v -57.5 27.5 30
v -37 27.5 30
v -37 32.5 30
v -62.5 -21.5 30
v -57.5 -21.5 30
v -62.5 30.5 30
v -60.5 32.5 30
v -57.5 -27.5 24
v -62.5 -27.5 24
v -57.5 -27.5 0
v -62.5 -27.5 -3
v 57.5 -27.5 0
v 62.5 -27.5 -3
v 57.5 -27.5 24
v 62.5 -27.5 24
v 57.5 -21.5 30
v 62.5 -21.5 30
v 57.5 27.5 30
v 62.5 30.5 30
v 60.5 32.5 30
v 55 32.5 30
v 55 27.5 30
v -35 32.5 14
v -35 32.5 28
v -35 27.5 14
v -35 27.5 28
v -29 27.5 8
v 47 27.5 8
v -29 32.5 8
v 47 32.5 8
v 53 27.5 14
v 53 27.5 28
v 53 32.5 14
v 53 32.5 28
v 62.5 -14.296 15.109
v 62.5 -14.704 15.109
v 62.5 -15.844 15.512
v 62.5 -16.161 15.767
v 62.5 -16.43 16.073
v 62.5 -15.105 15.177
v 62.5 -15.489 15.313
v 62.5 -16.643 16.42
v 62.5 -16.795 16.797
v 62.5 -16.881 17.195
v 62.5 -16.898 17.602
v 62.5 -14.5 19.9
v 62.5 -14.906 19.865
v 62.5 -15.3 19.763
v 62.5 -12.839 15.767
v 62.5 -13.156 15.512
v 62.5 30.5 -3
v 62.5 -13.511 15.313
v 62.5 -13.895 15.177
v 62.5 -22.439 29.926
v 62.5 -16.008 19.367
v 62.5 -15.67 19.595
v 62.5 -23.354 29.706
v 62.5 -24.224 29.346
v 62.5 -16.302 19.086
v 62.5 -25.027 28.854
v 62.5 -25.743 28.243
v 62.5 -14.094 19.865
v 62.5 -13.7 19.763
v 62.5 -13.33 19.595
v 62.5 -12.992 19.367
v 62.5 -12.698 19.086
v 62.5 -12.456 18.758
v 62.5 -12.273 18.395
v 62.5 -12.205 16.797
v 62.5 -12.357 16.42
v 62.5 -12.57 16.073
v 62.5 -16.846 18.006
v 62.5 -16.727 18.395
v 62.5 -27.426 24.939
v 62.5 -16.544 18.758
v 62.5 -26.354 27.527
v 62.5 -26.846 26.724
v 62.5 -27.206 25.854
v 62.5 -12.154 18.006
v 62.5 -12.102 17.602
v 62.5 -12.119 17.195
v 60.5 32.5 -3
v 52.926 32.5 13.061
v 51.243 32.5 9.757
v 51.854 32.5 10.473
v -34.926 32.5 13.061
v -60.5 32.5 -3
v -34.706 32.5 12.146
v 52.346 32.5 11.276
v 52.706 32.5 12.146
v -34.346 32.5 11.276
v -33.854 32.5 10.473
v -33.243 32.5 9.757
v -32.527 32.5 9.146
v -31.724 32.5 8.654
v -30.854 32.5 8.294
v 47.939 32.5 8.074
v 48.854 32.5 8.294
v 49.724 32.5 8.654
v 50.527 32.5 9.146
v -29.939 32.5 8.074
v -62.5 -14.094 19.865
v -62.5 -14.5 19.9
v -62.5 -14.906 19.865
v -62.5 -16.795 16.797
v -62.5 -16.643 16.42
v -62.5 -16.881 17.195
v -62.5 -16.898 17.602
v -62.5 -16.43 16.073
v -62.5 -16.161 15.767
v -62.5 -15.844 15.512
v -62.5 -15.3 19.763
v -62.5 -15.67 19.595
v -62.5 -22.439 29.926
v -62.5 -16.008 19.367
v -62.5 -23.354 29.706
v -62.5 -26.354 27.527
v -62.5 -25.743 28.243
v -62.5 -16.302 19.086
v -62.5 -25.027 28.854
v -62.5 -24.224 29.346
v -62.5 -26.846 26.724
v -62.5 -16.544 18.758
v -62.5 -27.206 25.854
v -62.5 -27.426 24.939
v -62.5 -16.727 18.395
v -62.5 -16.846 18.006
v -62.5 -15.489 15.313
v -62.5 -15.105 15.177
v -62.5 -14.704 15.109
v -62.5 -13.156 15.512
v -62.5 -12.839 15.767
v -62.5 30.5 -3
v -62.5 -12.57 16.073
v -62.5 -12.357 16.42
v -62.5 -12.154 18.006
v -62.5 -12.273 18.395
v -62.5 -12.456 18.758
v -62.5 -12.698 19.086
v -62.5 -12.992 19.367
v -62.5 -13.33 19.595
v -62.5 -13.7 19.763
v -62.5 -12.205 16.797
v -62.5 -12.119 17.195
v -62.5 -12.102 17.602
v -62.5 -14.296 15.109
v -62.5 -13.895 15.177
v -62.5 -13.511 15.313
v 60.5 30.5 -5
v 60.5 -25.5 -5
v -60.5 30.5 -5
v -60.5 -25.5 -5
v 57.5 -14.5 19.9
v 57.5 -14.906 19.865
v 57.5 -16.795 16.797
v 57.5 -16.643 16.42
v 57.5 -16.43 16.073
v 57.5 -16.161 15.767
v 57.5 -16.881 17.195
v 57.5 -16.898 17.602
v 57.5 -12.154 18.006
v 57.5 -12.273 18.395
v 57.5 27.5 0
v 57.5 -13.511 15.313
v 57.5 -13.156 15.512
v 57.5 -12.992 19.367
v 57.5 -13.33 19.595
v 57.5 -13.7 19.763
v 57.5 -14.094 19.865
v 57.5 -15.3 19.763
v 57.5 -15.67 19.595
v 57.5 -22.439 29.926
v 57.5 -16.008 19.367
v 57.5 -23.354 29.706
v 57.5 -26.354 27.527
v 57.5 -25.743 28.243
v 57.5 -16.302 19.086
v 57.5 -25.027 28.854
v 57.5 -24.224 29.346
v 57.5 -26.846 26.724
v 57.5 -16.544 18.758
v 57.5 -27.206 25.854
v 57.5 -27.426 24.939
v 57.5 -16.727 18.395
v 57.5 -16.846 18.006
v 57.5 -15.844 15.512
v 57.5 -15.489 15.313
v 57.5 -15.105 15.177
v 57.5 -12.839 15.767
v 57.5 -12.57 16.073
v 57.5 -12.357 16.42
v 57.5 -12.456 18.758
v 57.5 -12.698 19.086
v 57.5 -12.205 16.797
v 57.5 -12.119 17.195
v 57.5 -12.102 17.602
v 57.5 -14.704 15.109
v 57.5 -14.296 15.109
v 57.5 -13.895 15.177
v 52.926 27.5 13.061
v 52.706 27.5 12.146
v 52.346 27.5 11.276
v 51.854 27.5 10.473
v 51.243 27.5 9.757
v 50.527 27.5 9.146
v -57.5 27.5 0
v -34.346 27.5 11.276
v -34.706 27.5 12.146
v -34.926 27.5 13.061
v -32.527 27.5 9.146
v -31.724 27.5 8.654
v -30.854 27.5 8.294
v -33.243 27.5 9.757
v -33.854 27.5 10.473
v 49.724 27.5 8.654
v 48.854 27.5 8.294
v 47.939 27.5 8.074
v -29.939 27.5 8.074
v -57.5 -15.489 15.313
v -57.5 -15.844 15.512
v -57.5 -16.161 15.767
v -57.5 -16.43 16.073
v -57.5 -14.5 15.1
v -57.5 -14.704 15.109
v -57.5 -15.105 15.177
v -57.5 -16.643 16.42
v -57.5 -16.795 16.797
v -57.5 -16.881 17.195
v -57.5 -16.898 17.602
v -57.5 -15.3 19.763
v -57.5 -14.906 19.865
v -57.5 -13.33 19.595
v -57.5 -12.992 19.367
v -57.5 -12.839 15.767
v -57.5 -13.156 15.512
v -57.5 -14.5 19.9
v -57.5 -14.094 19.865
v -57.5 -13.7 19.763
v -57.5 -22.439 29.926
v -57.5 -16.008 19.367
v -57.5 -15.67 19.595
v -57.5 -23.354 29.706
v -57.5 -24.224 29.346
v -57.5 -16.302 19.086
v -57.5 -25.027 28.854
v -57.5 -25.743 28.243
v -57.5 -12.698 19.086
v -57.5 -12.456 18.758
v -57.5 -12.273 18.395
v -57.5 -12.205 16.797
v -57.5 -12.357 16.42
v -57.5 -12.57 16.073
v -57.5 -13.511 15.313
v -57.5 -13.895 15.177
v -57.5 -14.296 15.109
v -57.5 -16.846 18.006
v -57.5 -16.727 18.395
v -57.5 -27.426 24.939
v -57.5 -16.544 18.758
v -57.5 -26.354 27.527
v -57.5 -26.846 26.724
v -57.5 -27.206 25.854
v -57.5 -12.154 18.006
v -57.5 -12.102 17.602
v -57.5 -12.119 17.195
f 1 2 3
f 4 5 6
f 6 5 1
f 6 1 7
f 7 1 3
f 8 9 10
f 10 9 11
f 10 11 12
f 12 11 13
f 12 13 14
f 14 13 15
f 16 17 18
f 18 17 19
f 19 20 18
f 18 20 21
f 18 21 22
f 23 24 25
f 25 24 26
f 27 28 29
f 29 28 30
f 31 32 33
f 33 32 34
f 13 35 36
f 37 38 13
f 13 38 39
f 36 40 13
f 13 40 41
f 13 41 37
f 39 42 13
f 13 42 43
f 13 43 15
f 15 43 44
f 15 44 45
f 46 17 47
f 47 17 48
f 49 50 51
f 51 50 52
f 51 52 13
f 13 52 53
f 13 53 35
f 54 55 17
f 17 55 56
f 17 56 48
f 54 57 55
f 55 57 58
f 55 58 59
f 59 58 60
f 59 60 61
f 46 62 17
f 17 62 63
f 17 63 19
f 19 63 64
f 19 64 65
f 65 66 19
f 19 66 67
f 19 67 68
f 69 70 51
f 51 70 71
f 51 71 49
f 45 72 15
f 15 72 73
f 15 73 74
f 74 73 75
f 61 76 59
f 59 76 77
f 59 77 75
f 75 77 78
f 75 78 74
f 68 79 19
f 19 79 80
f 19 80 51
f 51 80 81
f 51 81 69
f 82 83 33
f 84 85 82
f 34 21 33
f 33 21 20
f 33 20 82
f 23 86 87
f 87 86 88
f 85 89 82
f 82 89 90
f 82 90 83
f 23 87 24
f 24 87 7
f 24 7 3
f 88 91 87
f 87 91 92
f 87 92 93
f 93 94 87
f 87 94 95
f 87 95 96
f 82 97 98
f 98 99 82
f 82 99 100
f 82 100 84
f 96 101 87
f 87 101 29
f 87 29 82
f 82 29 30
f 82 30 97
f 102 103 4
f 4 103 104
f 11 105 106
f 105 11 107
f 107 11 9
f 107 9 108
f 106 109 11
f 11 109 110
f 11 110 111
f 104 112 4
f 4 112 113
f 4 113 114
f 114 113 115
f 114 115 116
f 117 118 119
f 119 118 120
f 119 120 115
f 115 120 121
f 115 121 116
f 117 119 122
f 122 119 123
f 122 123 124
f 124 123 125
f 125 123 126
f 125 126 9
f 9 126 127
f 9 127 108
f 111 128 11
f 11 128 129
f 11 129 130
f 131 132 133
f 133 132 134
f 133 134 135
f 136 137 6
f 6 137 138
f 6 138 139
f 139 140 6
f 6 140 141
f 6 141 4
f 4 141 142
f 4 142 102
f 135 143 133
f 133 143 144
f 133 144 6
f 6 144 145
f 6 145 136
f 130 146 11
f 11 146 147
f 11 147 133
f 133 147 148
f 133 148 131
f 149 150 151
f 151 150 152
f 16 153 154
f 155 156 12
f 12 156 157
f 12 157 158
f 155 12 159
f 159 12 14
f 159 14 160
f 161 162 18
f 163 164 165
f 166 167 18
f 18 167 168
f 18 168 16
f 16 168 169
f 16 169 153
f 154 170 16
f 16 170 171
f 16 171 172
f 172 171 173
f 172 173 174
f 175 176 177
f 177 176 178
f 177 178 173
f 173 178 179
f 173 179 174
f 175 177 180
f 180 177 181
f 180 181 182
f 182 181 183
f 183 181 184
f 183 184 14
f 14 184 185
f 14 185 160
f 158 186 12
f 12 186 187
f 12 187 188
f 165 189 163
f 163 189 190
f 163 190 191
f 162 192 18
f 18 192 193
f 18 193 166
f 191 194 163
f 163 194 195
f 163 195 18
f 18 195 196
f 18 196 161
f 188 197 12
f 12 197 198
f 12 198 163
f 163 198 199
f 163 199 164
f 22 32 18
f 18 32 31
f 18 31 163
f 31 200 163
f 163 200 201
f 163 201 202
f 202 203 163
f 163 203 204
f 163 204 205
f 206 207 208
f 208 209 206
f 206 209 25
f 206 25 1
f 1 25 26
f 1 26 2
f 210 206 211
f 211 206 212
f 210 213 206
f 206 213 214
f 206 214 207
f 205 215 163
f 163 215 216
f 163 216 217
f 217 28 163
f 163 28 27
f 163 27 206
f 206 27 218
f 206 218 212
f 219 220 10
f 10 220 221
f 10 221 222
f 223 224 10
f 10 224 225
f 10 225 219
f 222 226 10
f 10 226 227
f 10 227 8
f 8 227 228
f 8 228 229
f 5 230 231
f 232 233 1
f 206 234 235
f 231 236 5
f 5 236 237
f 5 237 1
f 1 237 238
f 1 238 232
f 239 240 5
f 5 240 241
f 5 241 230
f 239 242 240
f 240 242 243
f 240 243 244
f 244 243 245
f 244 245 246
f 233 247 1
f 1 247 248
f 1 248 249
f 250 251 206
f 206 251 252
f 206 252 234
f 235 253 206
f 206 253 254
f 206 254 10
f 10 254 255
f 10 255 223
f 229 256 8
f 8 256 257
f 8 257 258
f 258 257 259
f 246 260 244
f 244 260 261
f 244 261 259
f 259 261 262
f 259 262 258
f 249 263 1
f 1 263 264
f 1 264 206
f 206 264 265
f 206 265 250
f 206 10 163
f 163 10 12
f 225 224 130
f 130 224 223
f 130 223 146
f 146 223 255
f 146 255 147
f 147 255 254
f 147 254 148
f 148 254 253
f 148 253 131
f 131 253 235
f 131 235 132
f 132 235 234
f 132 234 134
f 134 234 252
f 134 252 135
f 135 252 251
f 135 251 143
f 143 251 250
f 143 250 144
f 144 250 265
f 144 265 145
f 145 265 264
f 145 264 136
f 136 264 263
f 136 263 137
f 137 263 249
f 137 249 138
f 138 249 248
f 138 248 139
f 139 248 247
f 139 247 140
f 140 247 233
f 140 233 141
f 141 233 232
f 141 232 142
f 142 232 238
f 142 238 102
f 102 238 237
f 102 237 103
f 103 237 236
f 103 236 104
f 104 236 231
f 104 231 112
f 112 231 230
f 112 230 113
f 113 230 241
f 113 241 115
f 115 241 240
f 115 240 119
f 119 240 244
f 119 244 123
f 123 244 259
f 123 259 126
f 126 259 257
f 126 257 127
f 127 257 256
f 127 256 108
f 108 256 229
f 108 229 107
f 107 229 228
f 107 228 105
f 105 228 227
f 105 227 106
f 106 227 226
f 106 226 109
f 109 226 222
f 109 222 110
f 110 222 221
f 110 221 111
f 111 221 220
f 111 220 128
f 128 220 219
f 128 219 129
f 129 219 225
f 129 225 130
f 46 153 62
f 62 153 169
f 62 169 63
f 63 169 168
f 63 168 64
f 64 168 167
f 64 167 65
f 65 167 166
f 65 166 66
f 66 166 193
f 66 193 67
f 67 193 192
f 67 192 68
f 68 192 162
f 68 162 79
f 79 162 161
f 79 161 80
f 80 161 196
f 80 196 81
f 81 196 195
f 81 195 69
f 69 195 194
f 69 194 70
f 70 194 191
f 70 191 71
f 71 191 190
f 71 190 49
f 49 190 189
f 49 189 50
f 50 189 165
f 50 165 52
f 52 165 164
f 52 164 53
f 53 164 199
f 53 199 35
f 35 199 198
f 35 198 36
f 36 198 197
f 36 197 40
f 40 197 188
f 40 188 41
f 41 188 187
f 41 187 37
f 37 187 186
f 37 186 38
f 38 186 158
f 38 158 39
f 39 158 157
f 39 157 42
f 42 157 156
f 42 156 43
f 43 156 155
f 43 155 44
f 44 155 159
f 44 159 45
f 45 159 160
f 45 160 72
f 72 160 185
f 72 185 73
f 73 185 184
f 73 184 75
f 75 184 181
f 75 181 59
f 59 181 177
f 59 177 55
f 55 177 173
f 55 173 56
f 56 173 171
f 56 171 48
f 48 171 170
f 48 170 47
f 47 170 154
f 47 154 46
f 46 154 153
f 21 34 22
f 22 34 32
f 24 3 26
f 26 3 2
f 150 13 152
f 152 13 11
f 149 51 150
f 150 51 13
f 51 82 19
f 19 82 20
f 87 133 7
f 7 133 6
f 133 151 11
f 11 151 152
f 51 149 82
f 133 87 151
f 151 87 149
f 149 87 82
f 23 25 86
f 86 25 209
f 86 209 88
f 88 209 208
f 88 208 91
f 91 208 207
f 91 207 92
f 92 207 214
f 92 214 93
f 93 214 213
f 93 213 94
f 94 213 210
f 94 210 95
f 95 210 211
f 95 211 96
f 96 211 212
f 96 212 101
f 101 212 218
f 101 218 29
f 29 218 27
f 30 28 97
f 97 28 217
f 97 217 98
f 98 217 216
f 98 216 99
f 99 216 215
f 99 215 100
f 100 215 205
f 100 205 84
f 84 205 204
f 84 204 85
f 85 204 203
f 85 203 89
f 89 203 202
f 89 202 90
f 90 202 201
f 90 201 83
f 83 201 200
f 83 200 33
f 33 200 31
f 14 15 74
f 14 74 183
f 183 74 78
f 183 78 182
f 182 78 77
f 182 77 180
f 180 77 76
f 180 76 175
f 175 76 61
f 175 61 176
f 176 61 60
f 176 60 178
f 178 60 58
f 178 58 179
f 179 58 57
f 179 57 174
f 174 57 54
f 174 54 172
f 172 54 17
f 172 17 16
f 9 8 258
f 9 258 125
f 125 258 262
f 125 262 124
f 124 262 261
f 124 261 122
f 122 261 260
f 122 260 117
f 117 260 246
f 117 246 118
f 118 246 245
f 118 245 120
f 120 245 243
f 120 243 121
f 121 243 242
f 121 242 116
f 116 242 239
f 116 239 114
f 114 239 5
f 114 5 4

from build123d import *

# Parameters (mm, degrees)
SKETCH1_W            = 115
SKETCH1_H            = 55
BOSS_EXTRUDE1_DEPTH  = 30
SKETCH2_W            = 88
SKETCH2_H            = 22
CUT_EXTRUDE1_DEPTH   = 86.036756758
SHELL1_T             = 5
M4_CLEARANCE_HOLE1_D = 4.8
CHAMFER1_SIZE        = 2
FILLET1_R            = 6
FILLET2_R            = 6


with BuildPart() as part:
    # Sketch1 → Boss-Extrude1 (new body)
    with BuildSketch(Plane.XY):
        Rectangle(SKETCH1_W, SKETCH1_H)
    extrude(amount=BOSS_EXTRUDE1_DEPTH)

    # Sketch2 → Cut-Extrude1 (cut, through all)
    with BuildSketch(Plane(origin=(0, 27.5, 0), x_dir=(1, 0, 0), z_dir=(0, 1, 0))):
        with Locations((9, -19)):
            Rectangle(SKETCH2_W, SKETCH2_H)
    extrude(amount=-CUT_EXTRUDE1_DEPTH, mode=Mode.SUBTRACT)

    # Shell1
    shell1_openings = [part.faces().sort_by_distance(p)[0] for p in [
        (0, -27.5, 1.188486432),
        (55.25, 0, 30),
        (53, 0, 19),
        (9, 0, 8),
        (-35, 0, 19),
        (-46.25, 0, 30),
    ]]
    offset(amount=SHELL1_T, openings=shell1_openings, kind=Kind.INTERSECTION)

    # M4 Clearance Hole1 (through all)
    with Locations(Plane.ZY.offset(62.5)):
        with Locations((17.5, -14.5)):
            Hole(M4_CLEARANCE_HOLE1_D / 2)

    # Chamfer1
    chamfer1_edges = [part.edges().sort_by_distance(p)[0] for p in [
        (-35, 30, 30),
        (53, 30, 30),
        (0, -27.5, -5),
        (-62.5, 2.5, -5),
        (0, 32.5, -5),
        (62.5, 2.5, -5),
        (-62.5, 32.5, 12.5),
        (62.5, 32.5, 12.5),
    ]]
    chamfer(chamfer1_edges, length=CHAMFER1_SIZE)

    # Fillet1
    fillet1_edges = [part.edges().sort_by_distance(p)[0] for p in [
        (-35, 30, 8),
        (53, 30, 8),
    ]]
    fillet(fillet1_edges, radius=FILLET1_R)

    # Fillet2
    fillet2_edges = [part.edges().sort_by_distance(p)[0] for p in [
        (60, -27.5, 30),
        (-60, -27.5, 30),
    ]]
    fillet(fillet2_edges, radius=FILLET2_R)


solid = part.part
